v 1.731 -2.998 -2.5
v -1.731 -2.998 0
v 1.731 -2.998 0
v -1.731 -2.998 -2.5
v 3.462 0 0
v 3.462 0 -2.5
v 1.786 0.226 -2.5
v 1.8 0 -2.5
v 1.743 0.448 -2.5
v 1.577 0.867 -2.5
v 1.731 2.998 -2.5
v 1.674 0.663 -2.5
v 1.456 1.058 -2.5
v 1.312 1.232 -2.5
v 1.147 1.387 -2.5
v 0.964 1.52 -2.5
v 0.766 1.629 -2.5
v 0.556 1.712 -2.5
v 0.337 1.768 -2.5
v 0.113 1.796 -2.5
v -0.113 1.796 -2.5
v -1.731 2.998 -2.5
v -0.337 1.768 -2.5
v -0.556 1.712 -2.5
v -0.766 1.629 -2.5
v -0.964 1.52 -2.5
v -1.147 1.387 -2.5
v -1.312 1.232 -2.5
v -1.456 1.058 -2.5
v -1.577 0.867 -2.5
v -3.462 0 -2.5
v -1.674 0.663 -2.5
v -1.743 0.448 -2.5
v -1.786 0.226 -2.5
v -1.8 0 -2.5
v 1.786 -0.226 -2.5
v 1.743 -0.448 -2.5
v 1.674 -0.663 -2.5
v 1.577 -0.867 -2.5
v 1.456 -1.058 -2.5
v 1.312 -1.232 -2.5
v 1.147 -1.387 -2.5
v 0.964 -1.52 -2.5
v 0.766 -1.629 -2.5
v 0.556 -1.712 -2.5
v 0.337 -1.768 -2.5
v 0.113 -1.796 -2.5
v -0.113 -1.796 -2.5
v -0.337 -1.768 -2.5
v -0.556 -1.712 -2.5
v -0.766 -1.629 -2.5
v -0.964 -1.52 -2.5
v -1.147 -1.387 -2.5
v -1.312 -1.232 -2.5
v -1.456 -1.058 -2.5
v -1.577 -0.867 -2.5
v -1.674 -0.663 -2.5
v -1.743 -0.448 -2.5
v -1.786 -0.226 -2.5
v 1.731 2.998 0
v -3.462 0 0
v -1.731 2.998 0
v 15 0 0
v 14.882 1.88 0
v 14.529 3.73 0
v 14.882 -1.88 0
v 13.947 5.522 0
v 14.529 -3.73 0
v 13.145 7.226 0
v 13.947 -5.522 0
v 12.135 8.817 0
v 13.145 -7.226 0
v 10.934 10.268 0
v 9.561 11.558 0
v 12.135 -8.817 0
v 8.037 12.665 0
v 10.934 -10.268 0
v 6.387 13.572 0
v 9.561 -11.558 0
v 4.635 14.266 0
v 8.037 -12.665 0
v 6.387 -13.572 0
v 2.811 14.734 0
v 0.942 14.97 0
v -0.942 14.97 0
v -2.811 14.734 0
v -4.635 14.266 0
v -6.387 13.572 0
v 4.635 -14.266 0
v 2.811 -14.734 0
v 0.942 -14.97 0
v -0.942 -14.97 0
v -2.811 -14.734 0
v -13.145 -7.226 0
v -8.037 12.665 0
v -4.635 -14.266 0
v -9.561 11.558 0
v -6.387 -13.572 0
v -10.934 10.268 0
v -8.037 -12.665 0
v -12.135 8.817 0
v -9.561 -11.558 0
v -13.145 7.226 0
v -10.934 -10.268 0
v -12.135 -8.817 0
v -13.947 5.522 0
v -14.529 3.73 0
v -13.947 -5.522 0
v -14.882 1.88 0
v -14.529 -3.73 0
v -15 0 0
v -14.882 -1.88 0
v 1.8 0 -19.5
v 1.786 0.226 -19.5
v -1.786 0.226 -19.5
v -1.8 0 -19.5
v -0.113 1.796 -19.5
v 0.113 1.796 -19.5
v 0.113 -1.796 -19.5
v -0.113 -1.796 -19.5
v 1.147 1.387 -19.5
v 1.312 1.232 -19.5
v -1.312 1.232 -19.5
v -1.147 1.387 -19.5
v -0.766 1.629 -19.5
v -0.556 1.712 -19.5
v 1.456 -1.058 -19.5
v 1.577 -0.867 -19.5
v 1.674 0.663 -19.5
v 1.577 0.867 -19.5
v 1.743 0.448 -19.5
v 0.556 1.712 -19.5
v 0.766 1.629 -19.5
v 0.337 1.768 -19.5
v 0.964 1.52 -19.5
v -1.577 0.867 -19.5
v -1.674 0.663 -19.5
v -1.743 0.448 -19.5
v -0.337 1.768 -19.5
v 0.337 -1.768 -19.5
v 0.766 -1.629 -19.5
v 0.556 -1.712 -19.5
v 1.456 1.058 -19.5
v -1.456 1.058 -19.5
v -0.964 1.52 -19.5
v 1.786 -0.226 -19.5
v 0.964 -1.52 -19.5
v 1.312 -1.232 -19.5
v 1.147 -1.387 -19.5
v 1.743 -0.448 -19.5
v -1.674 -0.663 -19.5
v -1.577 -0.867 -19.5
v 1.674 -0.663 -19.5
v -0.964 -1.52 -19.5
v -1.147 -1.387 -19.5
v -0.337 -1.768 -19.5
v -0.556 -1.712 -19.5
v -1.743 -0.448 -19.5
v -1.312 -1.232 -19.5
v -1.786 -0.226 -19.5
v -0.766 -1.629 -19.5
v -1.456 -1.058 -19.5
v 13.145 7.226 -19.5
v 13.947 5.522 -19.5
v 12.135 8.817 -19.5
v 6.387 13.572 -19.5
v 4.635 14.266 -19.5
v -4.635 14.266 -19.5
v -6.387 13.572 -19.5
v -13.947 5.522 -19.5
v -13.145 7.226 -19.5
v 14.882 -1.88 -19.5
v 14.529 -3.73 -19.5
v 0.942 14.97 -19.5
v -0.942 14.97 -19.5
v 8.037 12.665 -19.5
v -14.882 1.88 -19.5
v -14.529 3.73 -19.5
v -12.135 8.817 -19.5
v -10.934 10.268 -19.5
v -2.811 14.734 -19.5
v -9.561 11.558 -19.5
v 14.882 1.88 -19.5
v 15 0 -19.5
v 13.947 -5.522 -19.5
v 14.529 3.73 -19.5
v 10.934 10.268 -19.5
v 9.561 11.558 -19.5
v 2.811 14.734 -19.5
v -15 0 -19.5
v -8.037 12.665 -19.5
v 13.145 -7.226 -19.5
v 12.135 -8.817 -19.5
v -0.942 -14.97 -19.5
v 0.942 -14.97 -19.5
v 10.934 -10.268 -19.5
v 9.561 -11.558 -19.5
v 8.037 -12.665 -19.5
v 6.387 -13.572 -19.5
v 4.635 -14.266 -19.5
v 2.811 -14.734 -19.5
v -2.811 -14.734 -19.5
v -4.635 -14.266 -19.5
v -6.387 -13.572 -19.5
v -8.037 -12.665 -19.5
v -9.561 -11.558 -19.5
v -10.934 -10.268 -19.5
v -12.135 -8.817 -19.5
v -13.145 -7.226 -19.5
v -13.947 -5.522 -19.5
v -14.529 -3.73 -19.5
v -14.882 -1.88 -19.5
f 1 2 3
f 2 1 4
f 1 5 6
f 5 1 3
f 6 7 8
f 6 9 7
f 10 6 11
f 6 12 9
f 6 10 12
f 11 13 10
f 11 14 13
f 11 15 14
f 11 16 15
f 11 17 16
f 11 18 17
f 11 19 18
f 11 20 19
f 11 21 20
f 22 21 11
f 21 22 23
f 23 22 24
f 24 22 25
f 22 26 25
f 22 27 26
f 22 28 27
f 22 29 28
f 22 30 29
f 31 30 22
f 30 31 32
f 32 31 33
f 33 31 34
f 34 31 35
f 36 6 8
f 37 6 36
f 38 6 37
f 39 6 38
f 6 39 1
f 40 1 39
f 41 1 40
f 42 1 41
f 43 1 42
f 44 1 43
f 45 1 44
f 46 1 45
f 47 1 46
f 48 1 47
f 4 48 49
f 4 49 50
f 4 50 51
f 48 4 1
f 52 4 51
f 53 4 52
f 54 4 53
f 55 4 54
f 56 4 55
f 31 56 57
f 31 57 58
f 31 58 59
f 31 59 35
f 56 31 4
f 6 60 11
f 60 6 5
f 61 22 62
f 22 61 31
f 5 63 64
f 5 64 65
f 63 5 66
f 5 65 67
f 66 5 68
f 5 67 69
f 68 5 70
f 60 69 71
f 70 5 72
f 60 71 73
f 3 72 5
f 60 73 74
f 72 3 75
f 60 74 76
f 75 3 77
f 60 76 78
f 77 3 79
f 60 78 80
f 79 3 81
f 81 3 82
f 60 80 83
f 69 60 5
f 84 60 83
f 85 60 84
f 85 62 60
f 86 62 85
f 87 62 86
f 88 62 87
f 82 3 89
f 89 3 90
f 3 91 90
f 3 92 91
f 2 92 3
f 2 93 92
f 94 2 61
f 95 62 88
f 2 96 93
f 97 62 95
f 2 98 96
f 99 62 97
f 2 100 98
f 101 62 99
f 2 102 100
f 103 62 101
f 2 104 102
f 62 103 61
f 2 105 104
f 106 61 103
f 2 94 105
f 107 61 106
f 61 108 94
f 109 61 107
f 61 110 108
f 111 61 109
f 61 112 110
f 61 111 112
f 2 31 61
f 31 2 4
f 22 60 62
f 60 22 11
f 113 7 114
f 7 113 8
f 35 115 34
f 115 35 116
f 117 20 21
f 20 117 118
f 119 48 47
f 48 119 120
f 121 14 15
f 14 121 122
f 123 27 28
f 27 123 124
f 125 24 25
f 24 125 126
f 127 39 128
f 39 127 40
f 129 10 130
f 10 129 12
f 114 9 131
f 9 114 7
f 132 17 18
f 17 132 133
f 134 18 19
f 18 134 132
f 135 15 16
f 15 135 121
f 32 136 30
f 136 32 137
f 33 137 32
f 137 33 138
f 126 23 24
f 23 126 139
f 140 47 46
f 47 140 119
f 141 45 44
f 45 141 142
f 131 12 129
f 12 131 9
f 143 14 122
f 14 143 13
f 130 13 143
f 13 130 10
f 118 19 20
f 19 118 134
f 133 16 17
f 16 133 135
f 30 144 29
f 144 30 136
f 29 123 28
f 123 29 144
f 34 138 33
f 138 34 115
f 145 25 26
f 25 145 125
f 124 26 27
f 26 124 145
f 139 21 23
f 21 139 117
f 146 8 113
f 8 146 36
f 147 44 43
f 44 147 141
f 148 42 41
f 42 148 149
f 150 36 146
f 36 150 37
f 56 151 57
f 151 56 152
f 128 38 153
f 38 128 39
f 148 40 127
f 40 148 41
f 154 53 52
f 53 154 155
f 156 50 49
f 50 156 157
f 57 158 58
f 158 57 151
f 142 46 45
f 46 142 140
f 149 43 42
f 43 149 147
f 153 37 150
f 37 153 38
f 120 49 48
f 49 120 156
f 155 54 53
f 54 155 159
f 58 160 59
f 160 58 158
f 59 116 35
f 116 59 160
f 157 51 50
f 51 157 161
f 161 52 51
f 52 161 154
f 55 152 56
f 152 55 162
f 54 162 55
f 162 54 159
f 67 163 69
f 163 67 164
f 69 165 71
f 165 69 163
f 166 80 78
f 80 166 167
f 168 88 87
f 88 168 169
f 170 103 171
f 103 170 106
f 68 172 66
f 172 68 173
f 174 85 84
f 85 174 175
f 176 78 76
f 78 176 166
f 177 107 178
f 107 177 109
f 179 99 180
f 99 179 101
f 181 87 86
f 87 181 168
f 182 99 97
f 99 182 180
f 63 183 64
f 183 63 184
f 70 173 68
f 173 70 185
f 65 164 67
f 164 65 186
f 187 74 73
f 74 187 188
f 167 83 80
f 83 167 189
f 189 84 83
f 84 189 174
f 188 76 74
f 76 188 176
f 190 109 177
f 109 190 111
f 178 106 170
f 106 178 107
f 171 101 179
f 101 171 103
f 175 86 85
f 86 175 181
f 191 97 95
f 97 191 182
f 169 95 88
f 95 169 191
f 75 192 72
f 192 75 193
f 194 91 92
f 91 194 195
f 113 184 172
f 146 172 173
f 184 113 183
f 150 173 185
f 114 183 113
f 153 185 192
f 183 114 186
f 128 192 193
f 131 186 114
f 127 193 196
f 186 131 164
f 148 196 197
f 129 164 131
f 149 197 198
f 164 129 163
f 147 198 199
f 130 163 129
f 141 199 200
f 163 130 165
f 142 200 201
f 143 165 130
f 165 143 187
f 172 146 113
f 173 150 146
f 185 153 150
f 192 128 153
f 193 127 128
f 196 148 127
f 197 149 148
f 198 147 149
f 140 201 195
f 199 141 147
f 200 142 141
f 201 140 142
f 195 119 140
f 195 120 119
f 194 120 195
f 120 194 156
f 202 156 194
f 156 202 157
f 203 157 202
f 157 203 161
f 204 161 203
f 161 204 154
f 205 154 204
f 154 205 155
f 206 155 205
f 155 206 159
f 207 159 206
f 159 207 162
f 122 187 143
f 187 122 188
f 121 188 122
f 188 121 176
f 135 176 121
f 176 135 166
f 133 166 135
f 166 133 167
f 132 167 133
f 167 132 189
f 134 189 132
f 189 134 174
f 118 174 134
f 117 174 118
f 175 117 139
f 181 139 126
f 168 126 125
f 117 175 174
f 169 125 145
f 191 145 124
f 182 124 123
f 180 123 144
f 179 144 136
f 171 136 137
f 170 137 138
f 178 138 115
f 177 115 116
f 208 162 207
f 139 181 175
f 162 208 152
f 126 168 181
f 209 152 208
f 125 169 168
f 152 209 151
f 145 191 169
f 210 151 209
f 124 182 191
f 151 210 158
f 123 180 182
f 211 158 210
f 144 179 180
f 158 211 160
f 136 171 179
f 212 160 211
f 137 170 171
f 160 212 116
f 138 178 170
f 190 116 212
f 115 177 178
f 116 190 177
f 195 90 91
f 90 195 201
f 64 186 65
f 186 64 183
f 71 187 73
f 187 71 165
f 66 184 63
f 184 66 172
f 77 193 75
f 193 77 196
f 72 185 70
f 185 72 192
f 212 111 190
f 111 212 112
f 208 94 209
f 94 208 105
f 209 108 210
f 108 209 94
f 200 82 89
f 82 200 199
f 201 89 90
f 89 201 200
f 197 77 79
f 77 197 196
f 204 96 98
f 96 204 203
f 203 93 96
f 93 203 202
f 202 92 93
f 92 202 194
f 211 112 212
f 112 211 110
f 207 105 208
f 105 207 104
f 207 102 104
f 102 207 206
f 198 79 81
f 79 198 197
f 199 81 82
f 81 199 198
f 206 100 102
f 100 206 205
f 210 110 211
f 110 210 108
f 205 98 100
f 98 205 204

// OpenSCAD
$fn = 50;

difference() {
	union() {
		translate(v = [0, 0, -19.5]) {
			cylinder(h = 19.5, r = 15.0);
		}
	}
	union() {
		translate(v = [0, 0, 0]) {
			rotate(a = [0, 0, 0]) {
				difference() {
					union() {
						translate(v = [0, 0, -2.5]) {
							linear_extrude(height = 2.5) {
								polygon(points = [[3.4619999999999997, 0.0], [1.7310000000000003, 2.9981799479017264], [-1.7309999999999992, 2.9981799479017264], [-3.4619999999999997, 4.2397272186481365e-16], [-1.7310000000000014, -2.998179947901726], [1.7309999999999977, -2.9981799479017277]]);
							}
						}
					}
					union();
				}
			}
		}
		#translate(v = [0, 0, -100.0]) {
			cylinder(h = 200, r = 1.8);
		}
	}
}
